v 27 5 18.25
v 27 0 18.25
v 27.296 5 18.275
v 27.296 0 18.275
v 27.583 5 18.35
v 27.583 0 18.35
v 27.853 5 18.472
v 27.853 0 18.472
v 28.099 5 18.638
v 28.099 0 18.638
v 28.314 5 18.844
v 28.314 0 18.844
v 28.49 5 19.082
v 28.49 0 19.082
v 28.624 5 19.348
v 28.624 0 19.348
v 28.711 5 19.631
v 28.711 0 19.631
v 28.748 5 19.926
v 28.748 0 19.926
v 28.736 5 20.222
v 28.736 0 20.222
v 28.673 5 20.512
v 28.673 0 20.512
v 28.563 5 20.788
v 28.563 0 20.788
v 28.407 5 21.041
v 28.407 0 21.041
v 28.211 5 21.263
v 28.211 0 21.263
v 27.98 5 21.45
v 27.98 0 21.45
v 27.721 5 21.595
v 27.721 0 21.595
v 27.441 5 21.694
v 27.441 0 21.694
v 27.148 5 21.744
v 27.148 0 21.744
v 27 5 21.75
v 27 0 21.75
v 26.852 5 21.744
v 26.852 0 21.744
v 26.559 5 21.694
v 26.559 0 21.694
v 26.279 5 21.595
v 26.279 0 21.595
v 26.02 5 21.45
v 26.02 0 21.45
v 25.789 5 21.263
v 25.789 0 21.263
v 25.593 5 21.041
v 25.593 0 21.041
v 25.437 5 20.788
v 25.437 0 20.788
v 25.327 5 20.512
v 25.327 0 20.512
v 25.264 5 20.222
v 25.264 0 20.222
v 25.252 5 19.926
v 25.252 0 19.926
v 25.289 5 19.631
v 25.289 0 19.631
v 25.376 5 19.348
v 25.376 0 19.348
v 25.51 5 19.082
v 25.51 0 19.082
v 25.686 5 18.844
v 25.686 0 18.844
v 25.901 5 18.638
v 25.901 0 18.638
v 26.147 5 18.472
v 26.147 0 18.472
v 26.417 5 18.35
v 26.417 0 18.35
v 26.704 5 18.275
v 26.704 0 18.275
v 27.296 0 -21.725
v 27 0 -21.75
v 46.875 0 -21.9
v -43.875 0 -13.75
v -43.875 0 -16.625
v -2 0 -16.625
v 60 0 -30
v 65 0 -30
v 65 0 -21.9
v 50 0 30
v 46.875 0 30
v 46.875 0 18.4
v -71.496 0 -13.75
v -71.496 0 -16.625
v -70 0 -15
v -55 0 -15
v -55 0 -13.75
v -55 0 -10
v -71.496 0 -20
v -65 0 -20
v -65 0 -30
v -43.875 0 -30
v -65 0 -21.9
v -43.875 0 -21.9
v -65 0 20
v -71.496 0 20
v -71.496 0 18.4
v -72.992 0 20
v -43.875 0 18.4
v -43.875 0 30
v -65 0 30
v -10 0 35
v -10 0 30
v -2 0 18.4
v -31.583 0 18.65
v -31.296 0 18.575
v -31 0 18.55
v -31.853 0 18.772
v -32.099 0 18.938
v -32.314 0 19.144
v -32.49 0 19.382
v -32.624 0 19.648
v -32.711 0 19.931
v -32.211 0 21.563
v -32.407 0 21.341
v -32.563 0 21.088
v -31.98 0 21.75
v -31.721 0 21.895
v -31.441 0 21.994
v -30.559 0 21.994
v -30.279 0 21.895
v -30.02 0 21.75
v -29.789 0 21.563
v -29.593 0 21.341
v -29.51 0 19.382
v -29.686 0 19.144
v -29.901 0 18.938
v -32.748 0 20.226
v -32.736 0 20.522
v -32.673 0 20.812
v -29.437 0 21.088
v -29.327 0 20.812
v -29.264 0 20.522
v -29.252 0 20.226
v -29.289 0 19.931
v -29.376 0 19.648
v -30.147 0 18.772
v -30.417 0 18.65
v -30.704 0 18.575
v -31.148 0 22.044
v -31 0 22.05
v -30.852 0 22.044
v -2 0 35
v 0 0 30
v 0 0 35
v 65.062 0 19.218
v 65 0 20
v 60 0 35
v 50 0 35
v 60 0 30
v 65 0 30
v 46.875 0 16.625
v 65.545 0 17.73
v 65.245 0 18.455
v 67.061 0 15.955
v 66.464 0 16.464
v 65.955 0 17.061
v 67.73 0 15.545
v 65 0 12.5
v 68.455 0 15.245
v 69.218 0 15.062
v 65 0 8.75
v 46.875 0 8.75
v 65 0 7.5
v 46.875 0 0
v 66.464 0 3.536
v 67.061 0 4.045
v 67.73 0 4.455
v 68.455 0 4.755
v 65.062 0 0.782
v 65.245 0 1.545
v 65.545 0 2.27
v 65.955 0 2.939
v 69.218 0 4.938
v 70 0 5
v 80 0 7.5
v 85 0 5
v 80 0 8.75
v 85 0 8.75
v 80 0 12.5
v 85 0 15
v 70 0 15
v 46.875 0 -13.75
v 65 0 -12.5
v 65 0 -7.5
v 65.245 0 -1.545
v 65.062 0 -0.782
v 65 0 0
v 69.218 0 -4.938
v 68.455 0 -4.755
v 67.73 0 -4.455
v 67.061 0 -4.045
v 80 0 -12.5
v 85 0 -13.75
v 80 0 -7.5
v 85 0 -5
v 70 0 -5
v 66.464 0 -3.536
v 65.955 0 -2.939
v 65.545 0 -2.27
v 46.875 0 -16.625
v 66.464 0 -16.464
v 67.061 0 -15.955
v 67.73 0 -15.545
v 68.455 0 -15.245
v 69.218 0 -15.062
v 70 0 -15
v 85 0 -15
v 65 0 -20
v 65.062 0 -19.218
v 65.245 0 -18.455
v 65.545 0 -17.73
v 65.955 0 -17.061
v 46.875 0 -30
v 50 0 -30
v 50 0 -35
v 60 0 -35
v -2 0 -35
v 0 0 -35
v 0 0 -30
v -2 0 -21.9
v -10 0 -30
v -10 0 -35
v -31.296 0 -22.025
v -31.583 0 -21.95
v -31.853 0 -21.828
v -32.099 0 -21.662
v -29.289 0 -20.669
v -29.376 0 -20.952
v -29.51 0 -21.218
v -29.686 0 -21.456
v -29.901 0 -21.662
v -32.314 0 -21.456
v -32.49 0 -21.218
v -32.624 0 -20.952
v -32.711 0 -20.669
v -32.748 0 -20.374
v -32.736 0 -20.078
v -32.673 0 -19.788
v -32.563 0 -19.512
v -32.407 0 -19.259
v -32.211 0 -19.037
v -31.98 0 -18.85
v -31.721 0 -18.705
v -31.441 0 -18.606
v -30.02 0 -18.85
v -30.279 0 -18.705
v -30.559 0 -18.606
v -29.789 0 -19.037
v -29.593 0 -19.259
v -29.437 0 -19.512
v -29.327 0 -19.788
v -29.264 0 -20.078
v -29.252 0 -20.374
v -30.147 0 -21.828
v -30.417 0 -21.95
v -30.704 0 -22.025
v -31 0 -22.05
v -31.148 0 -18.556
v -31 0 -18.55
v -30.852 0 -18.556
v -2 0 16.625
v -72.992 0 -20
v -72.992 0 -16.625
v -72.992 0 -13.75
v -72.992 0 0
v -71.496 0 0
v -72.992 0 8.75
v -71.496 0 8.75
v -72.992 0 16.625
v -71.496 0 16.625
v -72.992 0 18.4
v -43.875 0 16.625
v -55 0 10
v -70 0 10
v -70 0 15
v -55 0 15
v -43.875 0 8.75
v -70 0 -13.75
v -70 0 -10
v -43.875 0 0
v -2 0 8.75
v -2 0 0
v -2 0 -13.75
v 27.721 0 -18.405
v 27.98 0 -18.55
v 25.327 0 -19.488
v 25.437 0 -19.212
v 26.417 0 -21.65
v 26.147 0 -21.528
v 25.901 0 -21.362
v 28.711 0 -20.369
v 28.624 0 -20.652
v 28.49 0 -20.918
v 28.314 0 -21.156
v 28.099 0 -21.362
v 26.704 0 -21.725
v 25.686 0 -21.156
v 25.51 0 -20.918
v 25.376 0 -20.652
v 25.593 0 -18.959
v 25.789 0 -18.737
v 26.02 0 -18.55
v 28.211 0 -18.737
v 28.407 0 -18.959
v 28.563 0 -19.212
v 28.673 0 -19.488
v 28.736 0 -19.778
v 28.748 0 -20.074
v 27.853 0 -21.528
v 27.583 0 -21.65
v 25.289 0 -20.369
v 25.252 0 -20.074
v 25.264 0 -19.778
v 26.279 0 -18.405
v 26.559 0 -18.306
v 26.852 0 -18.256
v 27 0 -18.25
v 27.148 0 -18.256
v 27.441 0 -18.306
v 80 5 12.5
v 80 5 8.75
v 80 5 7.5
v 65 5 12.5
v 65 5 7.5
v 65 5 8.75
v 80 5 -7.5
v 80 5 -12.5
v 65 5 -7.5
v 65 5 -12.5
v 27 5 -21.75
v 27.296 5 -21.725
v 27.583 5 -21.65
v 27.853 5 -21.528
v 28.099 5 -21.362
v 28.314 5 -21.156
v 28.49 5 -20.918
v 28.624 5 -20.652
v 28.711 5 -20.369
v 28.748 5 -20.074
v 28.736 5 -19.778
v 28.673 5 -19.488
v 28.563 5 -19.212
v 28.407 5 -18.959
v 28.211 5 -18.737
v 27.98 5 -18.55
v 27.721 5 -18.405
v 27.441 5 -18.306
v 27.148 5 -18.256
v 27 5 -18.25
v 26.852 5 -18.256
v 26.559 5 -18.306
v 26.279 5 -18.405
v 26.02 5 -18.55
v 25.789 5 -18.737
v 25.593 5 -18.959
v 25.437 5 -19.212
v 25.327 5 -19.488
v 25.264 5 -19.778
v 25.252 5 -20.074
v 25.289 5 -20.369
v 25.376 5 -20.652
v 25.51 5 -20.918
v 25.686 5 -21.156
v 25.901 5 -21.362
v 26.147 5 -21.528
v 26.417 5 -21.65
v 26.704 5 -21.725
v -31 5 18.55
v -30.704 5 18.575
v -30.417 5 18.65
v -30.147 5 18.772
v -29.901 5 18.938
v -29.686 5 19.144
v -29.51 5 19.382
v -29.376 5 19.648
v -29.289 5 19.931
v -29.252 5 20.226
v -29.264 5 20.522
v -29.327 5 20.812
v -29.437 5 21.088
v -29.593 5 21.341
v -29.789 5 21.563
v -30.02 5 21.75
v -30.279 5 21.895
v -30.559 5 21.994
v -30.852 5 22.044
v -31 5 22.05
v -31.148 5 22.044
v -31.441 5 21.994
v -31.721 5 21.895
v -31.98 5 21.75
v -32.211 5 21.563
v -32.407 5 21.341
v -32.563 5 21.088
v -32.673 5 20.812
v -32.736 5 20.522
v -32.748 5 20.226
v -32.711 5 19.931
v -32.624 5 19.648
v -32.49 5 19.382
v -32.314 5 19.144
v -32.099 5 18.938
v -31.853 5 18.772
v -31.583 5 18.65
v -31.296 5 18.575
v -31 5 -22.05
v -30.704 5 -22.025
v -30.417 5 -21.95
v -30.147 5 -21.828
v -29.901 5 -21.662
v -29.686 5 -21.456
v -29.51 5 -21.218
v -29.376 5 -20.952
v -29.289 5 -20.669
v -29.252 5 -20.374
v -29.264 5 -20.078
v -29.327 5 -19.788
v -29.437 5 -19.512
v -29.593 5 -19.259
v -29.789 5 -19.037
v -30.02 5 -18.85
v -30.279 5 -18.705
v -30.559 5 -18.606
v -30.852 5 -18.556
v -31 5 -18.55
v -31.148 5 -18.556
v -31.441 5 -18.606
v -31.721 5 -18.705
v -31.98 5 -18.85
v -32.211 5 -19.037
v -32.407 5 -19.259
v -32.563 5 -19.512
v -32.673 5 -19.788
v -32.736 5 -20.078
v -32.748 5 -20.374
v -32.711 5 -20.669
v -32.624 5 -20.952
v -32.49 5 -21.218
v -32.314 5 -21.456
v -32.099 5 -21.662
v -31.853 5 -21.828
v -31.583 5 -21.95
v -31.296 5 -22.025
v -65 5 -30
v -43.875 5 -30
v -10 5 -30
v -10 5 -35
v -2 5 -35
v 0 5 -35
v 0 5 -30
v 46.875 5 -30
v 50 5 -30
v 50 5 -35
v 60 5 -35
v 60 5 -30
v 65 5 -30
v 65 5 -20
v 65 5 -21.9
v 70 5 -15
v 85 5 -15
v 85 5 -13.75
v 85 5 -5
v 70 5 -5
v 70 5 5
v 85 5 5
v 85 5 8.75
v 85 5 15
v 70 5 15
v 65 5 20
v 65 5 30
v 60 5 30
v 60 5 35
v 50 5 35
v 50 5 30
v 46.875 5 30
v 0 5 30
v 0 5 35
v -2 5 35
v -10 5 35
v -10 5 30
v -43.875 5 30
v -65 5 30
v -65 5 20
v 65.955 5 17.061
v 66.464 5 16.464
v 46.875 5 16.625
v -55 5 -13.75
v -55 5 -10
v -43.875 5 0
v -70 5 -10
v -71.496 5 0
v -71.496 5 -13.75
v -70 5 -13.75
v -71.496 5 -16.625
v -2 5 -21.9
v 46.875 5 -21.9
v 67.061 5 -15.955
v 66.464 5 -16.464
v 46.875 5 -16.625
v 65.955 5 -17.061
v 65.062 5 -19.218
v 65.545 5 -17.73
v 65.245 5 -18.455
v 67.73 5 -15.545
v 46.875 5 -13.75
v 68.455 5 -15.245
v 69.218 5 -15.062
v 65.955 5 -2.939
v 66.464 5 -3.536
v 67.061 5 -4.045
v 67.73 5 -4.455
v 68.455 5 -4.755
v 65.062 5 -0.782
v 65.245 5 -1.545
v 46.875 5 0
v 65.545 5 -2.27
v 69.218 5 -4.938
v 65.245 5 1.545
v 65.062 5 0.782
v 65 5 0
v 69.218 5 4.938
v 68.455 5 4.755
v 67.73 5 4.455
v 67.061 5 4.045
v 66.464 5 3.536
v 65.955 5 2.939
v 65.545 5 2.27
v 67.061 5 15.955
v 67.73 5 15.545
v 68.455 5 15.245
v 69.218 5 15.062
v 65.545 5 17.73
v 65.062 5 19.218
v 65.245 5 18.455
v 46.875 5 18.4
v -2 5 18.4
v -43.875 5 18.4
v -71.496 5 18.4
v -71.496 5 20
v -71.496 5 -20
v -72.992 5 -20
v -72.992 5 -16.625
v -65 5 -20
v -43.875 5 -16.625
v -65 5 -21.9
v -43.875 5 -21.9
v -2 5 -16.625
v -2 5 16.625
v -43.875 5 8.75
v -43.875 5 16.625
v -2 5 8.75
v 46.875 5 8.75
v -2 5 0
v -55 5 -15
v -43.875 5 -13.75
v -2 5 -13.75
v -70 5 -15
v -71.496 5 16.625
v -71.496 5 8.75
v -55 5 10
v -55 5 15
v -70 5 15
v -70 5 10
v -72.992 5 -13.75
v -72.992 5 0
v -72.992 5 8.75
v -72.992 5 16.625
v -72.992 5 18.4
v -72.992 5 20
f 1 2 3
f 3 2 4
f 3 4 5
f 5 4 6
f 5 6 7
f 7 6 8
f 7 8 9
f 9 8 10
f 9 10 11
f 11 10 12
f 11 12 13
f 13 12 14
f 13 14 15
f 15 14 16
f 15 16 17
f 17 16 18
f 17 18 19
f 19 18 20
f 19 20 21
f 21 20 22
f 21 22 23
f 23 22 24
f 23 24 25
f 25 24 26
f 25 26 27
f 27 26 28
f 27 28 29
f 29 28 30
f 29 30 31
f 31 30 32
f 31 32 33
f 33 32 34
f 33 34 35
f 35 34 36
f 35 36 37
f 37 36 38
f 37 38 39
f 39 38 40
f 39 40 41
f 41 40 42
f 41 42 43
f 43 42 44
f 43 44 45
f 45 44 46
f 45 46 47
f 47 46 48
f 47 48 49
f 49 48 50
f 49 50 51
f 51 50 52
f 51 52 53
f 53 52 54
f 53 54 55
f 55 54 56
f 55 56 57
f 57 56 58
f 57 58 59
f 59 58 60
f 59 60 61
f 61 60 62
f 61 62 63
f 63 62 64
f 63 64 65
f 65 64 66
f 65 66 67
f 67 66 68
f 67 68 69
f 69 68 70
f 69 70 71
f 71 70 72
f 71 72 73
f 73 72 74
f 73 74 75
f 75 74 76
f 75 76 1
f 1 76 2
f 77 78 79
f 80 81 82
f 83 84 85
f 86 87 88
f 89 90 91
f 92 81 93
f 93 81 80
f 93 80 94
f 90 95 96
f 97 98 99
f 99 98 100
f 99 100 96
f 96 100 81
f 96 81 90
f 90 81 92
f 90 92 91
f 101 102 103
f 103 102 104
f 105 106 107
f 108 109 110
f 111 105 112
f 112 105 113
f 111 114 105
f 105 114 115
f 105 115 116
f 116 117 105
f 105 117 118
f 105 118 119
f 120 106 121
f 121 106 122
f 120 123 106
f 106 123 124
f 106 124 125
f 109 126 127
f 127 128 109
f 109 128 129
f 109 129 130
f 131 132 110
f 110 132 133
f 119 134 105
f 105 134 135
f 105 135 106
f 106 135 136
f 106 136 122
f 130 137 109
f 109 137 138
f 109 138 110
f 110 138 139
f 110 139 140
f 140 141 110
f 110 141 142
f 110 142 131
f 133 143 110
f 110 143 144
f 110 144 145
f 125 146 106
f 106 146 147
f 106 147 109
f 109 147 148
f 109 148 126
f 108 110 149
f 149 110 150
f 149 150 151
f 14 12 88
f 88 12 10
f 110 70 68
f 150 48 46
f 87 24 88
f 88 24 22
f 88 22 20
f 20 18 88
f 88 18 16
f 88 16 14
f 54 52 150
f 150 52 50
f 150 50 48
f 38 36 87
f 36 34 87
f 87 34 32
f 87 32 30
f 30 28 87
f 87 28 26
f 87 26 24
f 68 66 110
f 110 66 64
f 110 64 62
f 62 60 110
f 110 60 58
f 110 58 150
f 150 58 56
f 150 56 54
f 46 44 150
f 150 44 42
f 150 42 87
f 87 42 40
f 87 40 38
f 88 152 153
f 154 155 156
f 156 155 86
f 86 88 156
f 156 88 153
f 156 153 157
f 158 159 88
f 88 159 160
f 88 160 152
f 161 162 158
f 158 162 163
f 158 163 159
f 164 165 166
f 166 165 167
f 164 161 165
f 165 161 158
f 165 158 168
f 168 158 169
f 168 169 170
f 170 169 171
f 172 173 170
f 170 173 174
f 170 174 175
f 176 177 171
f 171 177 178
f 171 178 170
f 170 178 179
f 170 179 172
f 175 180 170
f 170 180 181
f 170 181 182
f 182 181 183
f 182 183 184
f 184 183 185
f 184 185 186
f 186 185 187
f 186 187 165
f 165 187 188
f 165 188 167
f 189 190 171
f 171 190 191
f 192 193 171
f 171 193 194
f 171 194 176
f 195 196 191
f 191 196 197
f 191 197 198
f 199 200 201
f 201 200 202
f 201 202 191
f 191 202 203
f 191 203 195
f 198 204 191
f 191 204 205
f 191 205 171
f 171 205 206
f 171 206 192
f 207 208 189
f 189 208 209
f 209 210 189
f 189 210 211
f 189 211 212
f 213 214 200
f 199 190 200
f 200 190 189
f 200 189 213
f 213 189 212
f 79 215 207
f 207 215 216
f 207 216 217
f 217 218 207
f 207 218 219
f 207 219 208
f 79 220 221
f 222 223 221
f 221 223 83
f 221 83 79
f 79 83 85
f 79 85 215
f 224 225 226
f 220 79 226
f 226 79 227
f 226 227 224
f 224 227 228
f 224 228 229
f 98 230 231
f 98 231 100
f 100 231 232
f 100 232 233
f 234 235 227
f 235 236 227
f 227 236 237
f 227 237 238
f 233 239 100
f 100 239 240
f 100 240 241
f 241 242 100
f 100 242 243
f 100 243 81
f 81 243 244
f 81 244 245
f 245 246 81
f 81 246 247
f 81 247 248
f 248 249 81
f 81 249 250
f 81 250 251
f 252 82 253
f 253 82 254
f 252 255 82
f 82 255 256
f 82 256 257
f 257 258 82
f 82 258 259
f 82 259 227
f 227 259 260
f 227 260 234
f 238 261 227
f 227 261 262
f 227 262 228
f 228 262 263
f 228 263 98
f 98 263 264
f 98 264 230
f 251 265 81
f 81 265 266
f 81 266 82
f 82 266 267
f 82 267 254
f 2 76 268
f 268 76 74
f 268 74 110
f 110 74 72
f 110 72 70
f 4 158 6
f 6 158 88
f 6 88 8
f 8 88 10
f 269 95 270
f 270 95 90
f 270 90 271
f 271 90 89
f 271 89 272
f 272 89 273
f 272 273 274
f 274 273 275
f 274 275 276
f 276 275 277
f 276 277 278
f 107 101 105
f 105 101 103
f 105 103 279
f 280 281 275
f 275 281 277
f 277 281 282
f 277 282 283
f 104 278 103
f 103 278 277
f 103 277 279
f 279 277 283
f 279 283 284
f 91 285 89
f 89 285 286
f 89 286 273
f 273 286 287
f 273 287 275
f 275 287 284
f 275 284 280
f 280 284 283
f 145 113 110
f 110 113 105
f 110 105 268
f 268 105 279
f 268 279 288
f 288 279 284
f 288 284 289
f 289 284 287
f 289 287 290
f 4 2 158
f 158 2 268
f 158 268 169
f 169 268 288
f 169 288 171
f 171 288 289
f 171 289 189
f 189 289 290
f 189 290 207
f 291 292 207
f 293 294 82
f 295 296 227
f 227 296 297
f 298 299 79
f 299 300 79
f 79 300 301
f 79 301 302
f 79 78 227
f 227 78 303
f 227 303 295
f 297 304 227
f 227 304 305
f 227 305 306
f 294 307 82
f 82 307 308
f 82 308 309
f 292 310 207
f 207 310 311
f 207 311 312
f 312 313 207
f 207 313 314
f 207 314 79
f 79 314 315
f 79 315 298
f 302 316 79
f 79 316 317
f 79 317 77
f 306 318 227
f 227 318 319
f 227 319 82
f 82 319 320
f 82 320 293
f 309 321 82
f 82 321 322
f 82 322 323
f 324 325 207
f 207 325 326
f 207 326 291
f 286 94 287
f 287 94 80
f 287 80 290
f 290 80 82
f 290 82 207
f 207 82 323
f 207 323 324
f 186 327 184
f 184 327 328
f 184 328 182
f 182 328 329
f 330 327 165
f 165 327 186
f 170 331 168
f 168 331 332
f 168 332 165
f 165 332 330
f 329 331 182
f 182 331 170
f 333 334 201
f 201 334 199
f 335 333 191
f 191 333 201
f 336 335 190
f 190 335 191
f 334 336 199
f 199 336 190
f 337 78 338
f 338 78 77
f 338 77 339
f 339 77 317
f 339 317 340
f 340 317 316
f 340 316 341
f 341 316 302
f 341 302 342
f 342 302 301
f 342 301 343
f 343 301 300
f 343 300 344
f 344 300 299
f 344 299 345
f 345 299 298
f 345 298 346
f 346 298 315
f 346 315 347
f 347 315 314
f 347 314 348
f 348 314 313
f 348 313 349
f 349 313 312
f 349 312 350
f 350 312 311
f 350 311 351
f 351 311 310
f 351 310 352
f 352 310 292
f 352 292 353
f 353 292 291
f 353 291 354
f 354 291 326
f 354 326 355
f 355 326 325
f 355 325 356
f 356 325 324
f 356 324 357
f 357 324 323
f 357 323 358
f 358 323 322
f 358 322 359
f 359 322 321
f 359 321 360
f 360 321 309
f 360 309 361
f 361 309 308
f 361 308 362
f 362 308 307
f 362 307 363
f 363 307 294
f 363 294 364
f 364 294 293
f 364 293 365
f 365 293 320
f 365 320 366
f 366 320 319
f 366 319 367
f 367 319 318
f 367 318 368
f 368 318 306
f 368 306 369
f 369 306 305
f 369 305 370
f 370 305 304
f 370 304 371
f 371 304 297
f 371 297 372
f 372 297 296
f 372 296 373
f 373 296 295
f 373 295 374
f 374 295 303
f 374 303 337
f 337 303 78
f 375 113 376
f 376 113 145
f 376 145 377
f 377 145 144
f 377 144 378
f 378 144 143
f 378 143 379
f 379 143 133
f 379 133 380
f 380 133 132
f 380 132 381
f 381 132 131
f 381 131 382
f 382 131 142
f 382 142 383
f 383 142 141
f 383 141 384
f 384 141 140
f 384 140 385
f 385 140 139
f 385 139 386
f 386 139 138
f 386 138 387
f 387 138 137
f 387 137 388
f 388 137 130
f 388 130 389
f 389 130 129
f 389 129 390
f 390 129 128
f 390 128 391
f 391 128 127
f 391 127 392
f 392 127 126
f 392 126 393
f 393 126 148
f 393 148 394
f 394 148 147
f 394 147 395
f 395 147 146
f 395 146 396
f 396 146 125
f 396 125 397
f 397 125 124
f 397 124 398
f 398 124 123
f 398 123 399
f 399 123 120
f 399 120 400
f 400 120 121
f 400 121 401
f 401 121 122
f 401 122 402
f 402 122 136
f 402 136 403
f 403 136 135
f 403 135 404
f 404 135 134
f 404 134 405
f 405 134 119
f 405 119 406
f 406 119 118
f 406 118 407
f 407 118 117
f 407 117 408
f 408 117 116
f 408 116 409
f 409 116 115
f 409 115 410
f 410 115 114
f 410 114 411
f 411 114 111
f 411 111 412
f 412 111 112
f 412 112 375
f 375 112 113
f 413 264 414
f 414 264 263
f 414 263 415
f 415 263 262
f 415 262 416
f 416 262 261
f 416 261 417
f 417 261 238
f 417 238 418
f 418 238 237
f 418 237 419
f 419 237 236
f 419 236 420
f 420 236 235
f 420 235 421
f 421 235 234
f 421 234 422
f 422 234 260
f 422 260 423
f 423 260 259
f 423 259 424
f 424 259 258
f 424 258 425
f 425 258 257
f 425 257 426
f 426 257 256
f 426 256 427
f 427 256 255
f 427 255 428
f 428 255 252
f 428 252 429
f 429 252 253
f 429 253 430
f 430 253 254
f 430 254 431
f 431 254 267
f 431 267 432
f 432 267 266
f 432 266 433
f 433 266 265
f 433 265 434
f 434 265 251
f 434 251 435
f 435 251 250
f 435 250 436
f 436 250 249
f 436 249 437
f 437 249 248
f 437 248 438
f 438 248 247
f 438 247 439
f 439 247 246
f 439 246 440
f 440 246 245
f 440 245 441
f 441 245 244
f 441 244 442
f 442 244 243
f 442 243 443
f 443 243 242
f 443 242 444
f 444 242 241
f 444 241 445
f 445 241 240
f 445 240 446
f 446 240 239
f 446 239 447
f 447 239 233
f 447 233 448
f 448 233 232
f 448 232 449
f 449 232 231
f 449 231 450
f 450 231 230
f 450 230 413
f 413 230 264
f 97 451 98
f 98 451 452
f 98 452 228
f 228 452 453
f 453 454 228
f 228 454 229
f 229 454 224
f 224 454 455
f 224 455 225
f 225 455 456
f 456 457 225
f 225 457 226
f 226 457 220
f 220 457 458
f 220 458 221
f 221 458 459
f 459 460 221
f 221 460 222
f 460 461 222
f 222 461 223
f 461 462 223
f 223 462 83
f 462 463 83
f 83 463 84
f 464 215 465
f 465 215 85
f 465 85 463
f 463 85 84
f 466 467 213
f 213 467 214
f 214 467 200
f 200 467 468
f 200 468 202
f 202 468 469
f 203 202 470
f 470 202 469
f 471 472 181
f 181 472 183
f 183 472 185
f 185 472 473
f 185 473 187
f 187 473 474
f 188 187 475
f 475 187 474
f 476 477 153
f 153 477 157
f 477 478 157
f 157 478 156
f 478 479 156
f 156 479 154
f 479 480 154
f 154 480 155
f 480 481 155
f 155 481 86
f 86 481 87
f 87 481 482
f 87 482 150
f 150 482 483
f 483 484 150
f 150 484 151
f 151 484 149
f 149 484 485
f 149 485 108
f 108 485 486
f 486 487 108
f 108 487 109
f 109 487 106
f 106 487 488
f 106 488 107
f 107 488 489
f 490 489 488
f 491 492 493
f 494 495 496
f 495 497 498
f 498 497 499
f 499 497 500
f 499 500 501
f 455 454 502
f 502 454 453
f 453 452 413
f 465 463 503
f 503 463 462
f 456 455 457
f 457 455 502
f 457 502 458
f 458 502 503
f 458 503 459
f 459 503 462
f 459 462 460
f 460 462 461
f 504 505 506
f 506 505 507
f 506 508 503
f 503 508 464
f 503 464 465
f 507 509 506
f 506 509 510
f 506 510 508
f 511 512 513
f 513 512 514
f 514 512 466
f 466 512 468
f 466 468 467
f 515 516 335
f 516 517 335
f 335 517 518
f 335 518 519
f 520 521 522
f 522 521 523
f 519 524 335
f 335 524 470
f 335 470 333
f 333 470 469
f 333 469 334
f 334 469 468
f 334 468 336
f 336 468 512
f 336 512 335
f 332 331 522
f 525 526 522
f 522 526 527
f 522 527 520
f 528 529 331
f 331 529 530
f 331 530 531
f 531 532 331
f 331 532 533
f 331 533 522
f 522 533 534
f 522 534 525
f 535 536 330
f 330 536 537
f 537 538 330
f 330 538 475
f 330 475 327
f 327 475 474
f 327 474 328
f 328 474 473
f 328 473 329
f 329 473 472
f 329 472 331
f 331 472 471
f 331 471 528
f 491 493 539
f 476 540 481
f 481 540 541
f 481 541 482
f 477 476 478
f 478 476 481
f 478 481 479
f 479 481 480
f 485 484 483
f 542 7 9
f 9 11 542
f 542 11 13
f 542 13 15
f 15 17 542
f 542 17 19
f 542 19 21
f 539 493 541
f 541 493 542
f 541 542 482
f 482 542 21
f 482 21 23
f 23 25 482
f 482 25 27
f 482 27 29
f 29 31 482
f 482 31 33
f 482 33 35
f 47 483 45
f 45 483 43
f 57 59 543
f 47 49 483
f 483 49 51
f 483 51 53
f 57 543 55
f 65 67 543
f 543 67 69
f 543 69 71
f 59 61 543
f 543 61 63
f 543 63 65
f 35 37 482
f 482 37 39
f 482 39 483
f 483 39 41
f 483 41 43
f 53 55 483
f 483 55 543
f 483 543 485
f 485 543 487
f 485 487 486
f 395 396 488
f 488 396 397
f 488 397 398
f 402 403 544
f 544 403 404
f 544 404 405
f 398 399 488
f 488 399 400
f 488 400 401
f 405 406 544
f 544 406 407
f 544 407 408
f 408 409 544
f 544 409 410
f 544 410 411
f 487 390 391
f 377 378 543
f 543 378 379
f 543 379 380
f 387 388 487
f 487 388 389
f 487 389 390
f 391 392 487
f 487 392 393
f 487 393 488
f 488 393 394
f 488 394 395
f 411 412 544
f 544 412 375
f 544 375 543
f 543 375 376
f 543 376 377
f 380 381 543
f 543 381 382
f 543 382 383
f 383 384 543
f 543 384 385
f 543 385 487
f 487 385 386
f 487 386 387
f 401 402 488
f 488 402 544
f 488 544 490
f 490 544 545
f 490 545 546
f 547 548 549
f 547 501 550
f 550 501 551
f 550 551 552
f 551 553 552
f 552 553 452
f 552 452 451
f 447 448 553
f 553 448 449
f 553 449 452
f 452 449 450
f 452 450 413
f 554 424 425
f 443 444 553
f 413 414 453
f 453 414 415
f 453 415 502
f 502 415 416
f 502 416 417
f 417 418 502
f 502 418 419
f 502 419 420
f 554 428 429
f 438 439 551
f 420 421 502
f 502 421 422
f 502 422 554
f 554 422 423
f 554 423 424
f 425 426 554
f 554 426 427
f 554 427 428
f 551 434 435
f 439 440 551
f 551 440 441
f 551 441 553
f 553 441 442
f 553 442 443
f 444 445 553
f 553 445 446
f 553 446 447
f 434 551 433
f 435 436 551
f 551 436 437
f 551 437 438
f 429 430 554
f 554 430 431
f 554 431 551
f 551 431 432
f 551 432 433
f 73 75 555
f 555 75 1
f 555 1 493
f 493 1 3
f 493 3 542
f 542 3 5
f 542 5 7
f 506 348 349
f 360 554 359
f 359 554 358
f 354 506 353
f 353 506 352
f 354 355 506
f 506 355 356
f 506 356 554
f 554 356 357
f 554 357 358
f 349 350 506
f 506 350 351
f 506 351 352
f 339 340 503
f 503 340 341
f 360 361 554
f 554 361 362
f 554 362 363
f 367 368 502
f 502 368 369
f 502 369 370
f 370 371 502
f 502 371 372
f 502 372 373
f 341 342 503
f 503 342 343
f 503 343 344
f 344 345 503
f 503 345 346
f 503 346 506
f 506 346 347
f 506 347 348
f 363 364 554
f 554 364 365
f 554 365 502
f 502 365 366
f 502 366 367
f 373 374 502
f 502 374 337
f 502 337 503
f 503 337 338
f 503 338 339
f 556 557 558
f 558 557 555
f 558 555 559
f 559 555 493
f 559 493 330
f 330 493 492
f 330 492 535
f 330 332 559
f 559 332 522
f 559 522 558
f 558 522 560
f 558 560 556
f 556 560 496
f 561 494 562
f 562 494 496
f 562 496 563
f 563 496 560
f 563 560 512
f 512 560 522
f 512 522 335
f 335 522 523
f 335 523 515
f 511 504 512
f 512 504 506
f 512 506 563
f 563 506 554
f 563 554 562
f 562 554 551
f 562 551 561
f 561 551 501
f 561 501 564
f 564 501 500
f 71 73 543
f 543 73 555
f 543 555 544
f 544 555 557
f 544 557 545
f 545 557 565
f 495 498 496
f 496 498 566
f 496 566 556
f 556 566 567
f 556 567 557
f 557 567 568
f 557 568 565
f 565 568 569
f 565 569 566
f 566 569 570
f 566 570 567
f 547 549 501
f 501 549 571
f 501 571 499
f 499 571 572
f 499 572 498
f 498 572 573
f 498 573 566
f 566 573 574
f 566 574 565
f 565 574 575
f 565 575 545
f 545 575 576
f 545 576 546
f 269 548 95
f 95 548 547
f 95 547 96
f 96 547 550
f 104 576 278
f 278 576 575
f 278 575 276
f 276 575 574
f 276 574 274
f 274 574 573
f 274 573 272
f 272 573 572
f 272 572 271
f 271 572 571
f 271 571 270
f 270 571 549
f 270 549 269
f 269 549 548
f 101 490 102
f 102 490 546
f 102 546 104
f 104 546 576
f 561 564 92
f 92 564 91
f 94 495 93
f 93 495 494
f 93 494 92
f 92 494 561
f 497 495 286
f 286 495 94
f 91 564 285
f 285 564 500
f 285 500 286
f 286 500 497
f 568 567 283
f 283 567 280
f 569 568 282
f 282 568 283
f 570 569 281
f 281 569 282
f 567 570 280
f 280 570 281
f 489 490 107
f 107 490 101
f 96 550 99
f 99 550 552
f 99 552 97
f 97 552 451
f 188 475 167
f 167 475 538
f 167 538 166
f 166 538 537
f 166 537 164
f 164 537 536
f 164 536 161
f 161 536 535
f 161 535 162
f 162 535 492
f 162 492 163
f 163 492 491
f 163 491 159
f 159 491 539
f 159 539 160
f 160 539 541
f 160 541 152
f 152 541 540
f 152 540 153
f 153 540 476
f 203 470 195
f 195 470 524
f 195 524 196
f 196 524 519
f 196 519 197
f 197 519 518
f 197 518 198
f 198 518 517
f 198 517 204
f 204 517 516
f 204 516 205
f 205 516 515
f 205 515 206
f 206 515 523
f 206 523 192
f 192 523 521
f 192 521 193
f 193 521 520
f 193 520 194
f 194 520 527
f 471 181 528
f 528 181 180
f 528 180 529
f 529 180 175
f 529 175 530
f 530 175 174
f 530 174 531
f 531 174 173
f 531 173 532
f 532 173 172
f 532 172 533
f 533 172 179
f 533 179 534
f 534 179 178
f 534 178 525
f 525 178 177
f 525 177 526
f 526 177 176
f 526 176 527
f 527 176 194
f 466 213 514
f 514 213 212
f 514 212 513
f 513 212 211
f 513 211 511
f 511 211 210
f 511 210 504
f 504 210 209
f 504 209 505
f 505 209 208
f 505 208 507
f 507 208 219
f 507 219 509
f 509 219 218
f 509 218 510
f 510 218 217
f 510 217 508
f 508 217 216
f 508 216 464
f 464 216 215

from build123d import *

# Parameters (mm, degrees)
SKETCH1_R           = 1.75
SKETCH1_W           = 15
SKETCH1_H           = 5
BOSS_EXTRUDE1_DEPTH = 5
FILLET1_R           = 5


with BuildPart() as part:
    # Sketch1 → Boss-Extrude1 (new body)
    with BuildSketch(Plane(origin=(0, 0, 0), x_dir=(1, 0, 0), z_dir=(0, 1, 0))):
        Polygon((65, 15), (65, 30), (60, 30), (60, 35), (50, 35), (50, 30), (0, 30), (0, 35), (-10, 35), (-10, 30), (-65, 30), (-65, 20), (-72.992352801, 20), (-72.992352801, 5), (-72.992352801, -5), (-72.992352801, -20), (-65, -20), (-65, -30), (-10, -30), (-10, -35), (0, -35), (0, -30), (50, -30), (50, -35), (60, -35), (60, -30), (65, -30), (65, -15), (85, -15), (85, -5), (65, -5), (65, 5), (85, 5), (85, 15), align=None)
        with Locations(Location((27, 20, 0), (0, 0, 270))):
            Circle(SKETCH1_R, mode=Mode.SUBTRACT)
        with Locations(Location((27, -20, 0), (0, 0, 270))):
            Circle(SKETCH1_R, mode=Mode.SUBTRACT)
        with Locations(Location((-31, 20.3, 0), (0, 0, 270))):
            Circle(SKETCH1_R, mode=Mode.SUBTRACT)
        with Locations(Location((-31, -20.3, 0), (0, 0, 270))):
            Circle(SKETCH1_R, mode=Mode.SUBTRACT)
        with Locations((72.5, 10)):
            Rectangle(SKETCH1_W, SKETCH1_H, mode=Mode.SUBTRACT)
        with Locations((72.5, -10)):
            Rectangle(SKETCH1_W, SKETCH1_H, mode=Mode.SUBTRACT)
        with Locations((-62.5, 12.5)):
            Rectangle(SKETCH1_W, SKETCH1_H, mode=Mode.SUBTRACT)
        with Locations((-62.5, -12.5)):
            Rectangle(SKETCH1_W, SKETCH1_H, mode=Mode.SUBTRACT)
    extrude(amount=BOSS_EXTRUDE1_DEPTH)

    # Fillet1
    fillet1_edges = [part.edges().sort_by_distance(p)[0] for p in [
        (65, 2.5, -15),
        (65, 2.5, -5),
        (65, 2.5, 5),
        (65, 2.5, 15),
    ]]
    fillet(fillet1_edges, radius=FILLET1_R - 0.0001)  # a hair under: the kernel refuses the full size


solid = part.part
